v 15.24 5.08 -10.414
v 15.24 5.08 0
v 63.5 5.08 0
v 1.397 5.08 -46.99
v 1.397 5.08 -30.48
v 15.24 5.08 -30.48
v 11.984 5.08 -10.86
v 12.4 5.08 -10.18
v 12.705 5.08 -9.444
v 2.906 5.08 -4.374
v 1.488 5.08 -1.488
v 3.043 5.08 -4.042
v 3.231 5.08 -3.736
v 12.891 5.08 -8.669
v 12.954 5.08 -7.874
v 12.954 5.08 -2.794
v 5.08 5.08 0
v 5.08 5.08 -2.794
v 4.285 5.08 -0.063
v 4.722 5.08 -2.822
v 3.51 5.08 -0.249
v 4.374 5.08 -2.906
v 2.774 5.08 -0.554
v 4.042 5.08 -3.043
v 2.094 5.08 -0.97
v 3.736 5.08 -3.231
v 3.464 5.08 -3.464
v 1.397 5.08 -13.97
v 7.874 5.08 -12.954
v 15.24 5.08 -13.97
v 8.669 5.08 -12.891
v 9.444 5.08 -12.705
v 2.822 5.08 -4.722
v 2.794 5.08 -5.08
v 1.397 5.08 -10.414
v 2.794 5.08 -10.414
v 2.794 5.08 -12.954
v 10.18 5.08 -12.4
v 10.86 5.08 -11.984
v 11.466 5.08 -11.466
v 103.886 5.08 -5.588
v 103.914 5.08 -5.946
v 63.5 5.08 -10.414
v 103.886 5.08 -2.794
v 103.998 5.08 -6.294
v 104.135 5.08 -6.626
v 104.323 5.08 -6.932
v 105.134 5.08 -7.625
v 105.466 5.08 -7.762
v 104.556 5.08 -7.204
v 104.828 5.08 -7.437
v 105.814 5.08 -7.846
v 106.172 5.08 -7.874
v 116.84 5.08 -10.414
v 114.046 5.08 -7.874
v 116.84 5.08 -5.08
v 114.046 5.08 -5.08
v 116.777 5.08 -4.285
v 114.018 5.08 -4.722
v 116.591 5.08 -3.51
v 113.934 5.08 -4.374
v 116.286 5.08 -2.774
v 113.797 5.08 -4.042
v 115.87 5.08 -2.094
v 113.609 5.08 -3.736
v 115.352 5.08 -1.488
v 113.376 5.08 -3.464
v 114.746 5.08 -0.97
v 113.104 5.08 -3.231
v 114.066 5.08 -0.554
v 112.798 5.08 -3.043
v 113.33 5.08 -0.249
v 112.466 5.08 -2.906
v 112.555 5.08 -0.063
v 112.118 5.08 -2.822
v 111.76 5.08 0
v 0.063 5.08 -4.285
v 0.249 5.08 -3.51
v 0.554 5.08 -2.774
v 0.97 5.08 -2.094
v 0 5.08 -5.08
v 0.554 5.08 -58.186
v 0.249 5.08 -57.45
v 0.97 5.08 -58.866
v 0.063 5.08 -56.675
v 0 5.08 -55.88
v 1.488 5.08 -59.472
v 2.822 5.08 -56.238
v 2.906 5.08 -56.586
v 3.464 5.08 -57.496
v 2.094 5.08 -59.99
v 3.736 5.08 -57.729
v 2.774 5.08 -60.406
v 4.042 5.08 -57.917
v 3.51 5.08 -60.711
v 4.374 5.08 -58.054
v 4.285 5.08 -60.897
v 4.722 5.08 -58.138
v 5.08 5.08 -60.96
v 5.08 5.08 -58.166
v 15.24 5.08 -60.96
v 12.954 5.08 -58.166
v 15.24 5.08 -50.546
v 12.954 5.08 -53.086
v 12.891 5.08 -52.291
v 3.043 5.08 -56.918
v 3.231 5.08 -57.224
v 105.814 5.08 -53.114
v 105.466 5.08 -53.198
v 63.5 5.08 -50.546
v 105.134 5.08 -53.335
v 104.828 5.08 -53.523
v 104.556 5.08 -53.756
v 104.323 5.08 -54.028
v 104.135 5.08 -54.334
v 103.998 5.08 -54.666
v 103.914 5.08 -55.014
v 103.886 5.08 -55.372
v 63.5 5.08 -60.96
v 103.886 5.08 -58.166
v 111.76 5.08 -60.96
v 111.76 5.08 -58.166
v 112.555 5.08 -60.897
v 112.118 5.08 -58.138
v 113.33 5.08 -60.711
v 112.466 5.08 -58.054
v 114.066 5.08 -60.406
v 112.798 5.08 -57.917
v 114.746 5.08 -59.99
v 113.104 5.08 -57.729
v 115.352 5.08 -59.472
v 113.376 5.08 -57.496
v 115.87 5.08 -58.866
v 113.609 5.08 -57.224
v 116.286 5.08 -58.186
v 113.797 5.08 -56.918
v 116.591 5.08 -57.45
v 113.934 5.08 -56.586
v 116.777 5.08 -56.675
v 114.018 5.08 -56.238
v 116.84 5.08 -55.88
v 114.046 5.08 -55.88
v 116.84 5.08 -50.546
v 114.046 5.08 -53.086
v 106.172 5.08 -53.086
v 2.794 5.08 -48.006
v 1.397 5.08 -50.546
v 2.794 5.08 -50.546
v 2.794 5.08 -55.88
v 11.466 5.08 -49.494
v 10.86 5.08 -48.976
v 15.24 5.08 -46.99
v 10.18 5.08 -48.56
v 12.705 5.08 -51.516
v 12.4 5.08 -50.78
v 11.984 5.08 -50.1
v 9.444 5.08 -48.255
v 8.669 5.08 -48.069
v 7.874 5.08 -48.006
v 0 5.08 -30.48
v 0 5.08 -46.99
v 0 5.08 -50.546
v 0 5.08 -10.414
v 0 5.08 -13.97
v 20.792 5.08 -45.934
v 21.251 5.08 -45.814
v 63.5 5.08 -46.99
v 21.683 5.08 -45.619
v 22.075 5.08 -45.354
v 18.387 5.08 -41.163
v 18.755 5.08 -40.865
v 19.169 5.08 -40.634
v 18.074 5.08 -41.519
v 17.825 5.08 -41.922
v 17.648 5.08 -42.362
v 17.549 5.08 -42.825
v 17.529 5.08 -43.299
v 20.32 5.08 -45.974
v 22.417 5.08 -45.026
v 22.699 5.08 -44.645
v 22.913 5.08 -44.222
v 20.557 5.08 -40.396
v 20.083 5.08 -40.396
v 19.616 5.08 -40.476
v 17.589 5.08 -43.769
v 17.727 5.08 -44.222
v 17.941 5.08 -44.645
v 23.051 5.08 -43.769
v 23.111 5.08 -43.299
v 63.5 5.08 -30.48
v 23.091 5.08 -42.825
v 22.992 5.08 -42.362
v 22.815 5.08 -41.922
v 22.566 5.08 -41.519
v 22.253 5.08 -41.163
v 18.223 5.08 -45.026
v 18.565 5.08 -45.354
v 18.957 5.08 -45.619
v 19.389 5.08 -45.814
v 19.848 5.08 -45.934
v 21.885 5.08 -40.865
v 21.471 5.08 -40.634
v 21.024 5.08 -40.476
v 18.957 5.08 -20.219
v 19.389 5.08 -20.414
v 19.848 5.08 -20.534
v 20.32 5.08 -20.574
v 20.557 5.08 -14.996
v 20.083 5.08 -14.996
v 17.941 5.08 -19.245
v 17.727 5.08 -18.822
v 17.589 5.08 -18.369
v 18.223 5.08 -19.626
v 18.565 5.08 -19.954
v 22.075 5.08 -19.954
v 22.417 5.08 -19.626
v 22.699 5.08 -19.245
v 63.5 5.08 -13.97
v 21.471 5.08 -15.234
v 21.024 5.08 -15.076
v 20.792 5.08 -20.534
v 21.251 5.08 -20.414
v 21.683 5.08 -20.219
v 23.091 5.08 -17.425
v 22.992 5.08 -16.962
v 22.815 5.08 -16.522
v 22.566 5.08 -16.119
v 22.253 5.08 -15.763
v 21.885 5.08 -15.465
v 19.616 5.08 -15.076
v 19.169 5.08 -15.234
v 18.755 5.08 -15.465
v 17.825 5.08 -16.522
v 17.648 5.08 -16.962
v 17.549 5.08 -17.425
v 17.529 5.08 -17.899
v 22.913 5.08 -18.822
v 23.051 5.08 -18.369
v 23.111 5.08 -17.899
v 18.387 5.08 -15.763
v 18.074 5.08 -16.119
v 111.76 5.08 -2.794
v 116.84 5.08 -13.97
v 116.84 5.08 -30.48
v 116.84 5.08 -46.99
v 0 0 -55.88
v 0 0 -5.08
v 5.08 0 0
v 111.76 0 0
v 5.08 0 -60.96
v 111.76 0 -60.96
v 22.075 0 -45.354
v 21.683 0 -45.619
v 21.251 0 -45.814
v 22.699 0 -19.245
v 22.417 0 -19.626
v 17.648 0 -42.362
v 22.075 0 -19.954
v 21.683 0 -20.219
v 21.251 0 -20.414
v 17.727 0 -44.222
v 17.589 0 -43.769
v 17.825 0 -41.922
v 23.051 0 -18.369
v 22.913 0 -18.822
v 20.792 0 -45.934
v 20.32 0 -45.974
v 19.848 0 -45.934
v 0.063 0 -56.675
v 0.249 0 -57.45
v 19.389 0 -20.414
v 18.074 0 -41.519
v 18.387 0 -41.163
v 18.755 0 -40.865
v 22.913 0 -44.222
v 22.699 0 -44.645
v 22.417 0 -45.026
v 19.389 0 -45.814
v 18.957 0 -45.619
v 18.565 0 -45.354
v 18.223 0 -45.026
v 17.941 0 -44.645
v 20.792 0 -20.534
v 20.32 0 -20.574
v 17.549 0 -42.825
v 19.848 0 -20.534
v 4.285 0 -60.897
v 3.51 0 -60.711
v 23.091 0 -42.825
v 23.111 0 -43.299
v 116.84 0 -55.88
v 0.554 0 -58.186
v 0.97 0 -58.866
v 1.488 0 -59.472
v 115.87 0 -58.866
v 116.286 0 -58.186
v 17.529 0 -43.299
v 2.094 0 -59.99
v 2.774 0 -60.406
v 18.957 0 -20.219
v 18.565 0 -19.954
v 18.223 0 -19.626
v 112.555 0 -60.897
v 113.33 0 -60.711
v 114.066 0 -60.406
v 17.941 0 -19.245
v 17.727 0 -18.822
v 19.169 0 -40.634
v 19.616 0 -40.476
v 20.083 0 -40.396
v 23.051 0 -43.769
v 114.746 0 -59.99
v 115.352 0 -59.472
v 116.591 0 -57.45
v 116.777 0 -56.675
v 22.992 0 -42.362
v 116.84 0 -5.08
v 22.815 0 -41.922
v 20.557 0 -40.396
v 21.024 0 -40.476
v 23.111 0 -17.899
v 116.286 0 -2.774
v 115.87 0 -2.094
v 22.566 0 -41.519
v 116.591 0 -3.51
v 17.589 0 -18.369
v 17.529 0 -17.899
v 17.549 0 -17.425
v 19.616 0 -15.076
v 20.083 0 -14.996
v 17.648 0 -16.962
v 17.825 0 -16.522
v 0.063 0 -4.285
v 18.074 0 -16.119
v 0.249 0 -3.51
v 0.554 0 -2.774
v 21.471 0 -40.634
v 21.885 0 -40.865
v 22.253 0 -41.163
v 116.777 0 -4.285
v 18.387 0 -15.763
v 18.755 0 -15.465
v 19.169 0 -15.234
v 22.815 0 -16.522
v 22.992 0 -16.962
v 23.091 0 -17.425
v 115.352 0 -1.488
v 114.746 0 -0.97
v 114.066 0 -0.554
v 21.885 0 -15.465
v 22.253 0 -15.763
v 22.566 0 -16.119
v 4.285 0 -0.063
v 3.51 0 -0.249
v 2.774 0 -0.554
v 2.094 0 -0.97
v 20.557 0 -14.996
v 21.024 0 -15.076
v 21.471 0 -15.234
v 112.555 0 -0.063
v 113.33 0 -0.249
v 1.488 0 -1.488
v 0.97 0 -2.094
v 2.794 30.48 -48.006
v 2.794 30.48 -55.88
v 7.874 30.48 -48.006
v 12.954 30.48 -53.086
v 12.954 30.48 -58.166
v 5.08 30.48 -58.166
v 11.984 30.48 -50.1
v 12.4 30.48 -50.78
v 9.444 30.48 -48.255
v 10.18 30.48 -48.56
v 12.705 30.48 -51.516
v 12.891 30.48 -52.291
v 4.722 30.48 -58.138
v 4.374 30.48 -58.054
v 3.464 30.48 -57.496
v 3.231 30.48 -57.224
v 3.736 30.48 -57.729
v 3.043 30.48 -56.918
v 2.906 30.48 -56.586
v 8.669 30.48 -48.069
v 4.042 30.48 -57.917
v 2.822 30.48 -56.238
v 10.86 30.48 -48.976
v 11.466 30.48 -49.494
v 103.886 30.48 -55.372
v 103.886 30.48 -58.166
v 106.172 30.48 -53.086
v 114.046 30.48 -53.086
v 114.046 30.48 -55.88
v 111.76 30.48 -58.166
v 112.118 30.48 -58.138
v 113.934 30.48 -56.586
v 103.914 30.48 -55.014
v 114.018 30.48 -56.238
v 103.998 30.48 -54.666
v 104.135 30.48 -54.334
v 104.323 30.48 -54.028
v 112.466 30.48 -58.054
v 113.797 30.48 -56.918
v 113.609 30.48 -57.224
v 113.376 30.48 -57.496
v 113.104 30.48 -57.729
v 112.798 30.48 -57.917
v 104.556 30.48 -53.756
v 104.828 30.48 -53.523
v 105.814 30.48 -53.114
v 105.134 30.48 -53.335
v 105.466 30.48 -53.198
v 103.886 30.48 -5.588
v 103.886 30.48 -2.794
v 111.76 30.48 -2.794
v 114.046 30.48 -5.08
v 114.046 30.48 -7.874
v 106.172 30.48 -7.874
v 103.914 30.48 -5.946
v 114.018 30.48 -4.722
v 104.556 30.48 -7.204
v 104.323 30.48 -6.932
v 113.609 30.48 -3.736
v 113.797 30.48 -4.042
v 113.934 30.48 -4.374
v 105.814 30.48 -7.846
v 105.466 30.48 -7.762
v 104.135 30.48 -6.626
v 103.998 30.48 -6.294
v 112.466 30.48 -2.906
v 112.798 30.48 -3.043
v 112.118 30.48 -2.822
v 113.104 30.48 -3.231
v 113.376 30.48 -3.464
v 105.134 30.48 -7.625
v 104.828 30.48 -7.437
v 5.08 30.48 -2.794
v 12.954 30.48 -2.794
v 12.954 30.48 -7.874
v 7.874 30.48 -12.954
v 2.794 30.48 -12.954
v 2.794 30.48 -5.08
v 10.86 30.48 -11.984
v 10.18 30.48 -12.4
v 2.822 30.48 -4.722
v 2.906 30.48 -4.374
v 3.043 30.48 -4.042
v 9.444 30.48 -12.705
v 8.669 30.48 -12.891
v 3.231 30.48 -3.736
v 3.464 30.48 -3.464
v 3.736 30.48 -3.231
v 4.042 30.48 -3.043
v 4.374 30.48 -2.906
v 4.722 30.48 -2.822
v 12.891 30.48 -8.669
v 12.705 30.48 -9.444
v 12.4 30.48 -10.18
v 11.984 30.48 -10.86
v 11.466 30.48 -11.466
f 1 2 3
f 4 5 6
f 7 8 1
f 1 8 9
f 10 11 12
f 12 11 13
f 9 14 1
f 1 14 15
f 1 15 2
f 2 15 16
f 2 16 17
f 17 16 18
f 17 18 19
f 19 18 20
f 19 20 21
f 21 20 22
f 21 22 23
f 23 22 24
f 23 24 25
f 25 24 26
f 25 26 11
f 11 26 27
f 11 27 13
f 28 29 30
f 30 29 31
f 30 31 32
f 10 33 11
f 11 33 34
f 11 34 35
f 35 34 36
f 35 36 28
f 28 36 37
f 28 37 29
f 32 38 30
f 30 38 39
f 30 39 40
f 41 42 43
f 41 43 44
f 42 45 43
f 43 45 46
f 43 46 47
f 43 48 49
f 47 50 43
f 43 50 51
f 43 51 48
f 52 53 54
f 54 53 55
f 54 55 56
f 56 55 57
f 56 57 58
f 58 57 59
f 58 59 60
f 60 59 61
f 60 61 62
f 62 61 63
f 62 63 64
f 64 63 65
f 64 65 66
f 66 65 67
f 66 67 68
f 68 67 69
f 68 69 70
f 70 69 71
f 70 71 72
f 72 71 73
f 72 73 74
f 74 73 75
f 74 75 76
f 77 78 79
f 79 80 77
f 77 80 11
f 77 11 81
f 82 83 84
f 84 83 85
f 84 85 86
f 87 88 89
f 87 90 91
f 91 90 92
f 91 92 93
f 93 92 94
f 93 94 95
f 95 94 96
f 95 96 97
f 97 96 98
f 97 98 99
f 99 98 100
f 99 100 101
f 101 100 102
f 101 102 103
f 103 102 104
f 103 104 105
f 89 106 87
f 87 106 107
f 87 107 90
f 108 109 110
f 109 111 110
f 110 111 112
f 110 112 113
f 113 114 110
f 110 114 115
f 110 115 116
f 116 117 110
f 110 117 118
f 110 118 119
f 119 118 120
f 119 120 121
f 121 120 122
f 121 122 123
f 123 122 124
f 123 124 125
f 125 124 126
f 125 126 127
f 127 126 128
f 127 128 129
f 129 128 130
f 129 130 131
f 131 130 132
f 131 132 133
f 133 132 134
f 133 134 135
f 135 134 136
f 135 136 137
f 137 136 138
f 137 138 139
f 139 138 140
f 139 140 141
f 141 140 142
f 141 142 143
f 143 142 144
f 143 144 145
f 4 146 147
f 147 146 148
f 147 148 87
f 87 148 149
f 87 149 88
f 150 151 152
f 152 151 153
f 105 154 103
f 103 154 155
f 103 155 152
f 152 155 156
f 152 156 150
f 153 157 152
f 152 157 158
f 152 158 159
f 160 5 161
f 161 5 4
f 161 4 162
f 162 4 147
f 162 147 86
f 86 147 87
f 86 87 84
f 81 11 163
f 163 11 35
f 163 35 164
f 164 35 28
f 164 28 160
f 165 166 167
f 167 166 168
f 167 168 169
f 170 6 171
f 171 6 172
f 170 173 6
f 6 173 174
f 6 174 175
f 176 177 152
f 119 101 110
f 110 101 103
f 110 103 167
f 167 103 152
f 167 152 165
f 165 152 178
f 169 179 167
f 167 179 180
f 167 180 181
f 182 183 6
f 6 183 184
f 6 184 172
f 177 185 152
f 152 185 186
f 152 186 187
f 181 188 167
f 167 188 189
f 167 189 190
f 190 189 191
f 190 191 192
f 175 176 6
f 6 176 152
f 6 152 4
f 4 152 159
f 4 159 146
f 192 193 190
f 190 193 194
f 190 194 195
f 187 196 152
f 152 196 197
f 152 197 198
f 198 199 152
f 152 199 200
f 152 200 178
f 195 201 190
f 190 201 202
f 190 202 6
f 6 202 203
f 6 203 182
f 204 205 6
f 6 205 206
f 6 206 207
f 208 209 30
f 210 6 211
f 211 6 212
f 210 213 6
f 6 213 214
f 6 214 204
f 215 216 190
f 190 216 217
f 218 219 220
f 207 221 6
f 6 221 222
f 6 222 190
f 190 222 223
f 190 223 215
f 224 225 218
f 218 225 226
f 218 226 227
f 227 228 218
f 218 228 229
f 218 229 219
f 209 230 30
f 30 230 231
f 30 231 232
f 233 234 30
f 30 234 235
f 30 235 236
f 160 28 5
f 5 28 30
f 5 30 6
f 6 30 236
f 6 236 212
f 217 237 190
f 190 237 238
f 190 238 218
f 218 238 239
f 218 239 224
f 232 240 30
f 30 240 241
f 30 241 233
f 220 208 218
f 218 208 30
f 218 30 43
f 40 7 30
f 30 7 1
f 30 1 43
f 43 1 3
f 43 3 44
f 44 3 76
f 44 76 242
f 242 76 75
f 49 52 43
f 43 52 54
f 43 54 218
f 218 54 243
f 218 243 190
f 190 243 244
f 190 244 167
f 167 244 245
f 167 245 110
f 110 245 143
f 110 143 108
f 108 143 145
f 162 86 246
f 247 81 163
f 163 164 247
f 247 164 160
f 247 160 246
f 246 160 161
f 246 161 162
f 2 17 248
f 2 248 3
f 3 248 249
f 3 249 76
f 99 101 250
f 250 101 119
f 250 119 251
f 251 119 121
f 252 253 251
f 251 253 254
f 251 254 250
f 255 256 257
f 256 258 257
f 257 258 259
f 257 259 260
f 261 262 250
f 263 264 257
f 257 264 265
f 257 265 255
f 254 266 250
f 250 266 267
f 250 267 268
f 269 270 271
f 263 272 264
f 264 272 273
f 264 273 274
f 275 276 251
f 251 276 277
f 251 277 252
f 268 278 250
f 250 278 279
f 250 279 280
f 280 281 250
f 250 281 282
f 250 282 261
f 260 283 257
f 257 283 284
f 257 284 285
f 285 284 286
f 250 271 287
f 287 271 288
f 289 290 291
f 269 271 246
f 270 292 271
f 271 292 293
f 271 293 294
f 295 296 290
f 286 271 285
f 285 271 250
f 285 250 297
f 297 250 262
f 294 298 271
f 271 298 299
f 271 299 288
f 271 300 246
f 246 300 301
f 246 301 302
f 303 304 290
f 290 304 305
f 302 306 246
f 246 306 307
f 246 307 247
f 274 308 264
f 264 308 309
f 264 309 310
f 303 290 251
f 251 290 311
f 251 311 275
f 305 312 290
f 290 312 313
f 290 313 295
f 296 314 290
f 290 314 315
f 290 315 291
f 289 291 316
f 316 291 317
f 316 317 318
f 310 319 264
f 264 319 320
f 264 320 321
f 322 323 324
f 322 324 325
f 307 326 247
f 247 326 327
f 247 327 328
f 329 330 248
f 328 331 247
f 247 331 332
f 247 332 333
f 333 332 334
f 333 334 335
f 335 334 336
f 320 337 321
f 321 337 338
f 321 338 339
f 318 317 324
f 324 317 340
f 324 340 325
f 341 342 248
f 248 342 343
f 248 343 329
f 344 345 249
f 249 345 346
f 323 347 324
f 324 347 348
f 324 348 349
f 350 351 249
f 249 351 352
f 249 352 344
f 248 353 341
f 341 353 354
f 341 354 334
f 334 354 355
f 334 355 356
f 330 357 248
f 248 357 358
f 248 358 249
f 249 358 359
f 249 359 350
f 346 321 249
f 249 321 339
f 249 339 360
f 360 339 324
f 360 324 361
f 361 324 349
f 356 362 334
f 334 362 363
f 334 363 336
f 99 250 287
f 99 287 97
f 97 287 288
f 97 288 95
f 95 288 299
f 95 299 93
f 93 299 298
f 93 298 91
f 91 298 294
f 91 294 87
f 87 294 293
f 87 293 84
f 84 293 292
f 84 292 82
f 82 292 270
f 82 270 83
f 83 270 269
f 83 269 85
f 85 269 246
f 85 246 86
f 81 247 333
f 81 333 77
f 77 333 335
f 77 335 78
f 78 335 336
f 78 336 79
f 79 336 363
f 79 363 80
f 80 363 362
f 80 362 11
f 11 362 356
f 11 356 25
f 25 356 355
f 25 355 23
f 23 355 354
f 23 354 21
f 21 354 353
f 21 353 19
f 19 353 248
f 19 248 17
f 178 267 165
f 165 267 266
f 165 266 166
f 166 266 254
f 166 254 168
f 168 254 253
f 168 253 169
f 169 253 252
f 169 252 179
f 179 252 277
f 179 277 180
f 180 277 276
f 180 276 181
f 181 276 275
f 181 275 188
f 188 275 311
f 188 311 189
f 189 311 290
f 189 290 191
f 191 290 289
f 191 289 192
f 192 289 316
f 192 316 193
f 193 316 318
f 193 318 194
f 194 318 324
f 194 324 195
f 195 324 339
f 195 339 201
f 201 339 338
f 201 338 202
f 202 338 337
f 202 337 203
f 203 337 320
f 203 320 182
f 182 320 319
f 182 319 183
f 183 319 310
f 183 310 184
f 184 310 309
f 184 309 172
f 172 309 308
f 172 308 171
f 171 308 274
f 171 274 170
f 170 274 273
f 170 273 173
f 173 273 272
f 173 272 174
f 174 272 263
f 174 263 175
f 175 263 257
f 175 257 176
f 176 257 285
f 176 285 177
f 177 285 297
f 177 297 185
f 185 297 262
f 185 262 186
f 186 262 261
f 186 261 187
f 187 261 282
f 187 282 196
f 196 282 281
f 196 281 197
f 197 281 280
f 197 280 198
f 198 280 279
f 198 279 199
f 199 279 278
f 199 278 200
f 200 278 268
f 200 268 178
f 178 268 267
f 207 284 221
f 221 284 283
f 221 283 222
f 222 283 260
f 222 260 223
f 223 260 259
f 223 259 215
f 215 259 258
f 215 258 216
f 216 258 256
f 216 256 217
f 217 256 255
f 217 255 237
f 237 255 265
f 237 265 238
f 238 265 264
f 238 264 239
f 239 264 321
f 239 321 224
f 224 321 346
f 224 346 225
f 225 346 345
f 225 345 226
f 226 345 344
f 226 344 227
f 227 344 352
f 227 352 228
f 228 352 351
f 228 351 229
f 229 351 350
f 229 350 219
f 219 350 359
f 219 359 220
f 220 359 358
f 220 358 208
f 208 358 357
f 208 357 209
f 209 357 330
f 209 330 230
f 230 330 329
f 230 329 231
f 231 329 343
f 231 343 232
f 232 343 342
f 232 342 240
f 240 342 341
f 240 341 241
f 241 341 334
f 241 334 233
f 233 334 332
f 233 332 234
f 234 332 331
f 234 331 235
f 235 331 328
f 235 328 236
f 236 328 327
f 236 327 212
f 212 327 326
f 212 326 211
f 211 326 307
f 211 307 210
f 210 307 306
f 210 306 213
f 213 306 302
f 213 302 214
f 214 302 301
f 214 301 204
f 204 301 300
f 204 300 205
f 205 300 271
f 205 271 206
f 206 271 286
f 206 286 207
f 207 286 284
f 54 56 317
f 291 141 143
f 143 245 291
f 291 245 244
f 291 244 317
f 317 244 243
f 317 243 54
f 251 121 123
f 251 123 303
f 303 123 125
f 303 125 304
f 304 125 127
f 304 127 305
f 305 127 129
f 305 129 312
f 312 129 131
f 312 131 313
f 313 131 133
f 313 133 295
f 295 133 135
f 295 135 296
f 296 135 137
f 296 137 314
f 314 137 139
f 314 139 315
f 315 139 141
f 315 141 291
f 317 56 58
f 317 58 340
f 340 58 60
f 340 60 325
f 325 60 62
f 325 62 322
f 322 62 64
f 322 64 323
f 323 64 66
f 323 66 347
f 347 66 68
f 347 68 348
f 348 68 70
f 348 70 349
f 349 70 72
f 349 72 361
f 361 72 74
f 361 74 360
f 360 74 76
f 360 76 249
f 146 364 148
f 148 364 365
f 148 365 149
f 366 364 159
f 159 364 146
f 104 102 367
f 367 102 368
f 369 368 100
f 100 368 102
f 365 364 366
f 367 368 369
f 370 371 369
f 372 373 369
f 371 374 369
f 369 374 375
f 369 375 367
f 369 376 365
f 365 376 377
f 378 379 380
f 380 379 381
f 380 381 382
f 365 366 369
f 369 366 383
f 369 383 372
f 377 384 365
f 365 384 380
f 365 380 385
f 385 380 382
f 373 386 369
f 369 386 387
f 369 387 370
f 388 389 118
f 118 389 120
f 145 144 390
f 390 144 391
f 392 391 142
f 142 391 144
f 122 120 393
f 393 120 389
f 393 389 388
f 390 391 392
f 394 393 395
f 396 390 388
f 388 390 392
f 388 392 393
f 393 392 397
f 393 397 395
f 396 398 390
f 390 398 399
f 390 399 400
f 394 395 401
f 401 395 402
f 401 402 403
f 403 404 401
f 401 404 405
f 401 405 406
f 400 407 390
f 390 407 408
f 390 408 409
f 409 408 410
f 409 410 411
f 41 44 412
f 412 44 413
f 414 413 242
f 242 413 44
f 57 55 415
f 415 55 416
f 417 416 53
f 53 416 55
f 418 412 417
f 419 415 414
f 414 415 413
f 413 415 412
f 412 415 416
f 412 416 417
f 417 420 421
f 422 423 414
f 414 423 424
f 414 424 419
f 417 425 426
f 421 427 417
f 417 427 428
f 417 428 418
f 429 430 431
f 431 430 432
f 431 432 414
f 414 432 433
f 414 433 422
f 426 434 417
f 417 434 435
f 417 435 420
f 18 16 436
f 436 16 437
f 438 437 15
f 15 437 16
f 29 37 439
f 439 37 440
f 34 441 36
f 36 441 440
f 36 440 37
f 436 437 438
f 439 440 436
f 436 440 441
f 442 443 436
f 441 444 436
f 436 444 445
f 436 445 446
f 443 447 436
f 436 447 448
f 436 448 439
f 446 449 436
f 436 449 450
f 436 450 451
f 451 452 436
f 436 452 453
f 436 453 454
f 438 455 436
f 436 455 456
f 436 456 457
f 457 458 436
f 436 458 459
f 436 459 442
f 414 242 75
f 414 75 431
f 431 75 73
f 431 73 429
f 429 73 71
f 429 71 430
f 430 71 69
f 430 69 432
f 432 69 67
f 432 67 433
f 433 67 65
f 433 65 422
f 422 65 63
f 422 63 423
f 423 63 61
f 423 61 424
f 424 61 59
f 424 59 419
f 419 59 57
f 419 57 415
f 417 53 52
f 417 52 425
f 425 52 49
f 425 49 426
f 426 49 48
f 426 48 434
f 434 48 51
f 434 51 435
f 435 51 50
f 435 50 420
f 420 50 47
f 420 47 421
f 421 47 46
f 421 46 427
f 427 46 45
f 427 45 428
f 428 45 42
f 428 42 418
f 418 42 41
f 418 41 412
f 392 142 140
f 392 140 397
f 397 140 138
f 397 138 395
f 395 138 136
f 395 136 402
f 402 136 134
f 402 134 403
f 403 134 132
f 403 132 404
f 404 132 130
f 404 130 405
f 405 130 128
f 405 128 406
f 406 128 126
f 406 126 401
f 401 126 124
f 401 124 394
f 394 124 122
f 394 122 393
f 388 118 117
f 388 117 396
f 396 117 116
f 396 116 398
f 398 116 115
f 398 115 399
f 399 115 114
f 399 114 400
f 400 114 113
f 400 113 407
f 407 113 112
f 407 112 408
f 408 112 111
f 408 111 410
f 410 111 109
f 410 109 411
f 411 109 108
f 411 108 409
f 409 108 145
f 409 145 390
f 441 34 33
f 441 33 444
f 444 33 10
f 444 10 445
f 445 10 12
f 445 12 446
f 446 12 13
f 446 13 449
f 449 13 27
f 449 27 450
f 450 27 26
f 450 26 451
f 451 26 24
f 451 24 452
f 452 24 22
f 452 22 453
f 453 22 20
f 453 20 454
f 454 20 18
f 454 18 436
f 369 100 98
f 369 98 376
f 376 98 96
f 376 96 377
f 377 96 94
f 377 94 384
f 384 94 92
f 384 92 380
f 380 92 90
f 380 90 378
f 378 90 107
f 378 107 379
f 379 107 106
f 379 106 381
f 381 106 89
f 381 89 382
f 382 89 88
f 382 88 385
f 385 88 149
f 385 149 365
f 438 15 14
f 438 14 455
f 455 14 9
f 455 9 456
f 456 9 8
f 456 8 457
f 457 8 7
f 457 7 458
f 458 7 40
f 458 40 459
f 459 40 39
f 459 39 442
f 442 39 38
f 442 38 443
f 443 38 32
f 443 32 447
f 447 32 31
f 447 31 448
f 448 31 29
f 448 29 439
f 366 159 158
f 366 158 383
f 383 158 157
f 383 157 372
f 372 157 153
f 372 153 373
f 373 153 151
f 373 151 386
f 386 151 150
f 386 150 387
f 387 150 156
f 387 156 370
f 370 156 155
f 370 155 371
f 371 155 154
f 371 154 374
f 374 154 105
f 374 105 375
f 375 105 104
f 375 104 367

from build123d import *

# Parameters (mm, degrees)
SKETCH1_W           = 111.76
SKETCH1_H           = 60.96
BOSS_EXTRUDE1_DEPTH = 5.08
FILLET1_R           = 5.08
CUT_EXTRUDE1_REACH  = 129.406
SKETCH3_R           = 2.794
SKETCH3_R_2         = 3.302
SKETCH5_W           = 10.16
SKETCH5_H           = 60.96
BOSS_EXTRUDE2_DEPTH = 5.08
FILLET2_R           = 5.08
SKETCH2_W           = 10.16
SKETCH2_H           = 10.16
SKETCH2_H_2         = 5.08
BOSS_EXTRUDE5_DEPTH = 25.4
FILLET9_R           = 2.286
FILLET10_R          = 5.08
SKETCH6_R           = 6.996125679
BOSS_EXTRUDE6_DEPTH = 5.08


with BuildPart() as part:
    # Sketch1 → Boss-Extrude1 (new body)
    with BuildSketch(Plane(origin=(0, 0, 0), x_dir=(1, 0, 0), z_dir=(0, 1, 0))):
        with Locations((55.88, 30.48)):
            Rectangle(SKETCH1_W, SKETCH1_H)
    extrude(amount=BOSS_EXTRUDE1_DEPTH)

    # Fillet1
    fillet1_edges = [part.edges().sort_by_distance(p)[0] for p in [
        (0, 2.54, -60.96),
        (111.76, 2.54, -60.96),
        (111.76, 2.54, 0),
        (0, 2.54, 0),
    ]]
    fillet(fillet1_edges, radius=FILLET1_R)

    # Sketch3 → Cut-Extrude1 (cut, up to next)
    with BuildSketch(Plane.XZ, mode=Mode.PRIVATE) as cut_extrude1_sk1:
        with Locations(Location((20.32, -17.78, 0), (0, 0, 270))):
            Circle(SKETCH3_R)
    cut_extrude1_tool1 = extrude(cut_extrude1_sk1.sketch, amount=-CUT_EXTRUDE1_REACH, mode=Mode.PRIVATE) & part.part
    # Sketch3 → Cut-Extrude1 (cut, up to next)
    with BuildSketch(Plane.XZ, mode=Mode.PRIVATE) as cut_extrude1_sk2:
        with Locations(Location((20.32, -43.18, 0), (0, 0, 270))):
            Circle(SKETCH3_R)
    cut_extrude1_tool2 = extrude(cut_extrude1_sk2.sketch, amount=-CUT_EXTRUDE1_REACH, mode=Mode.PRIVATE) & part.part
    # Sketch3 → Cut-Extrude1 (cut, up to next)
    with BuildSketch(Plane.XZ, mode=Mode.PRIVATE) as cut_extrude1_sk3:
        with Locations(Location((30.48, -30.48, 0), (0, 0, 270))):
            Circle(SKETCH3_R_2)
    cut_extrude1_tool3 = extrude(cut_extrude1_sk3.sketch, amount=-CUT_EXTRUDE1_REACH, mode=Mode.PRIVATE) & part.part
    add(cut_extrude1_tool1.solids().sort_by_distance((20.32, 0, -17.78))[0], mode=Mode.SUBTRACT)
    add(cut_extrude1_tool2.solids().sort_by_distance((20.32, 0, -43.18))[0], mode=Mode.SUBTRACT)
    add(cut_extrude1_tool3.solids().sort_by_distance((30.48, 0, -30.48))[0], mode=Mode.SUBTRACT)

    # Sketch5 → Boss-Extrude2 (add)
    with BuildSketch(Plane.XZ):
        with Locations((111.76, -30.48)):
            Rectangle(SKETCH5_W, SKETCH5_H)
    extrude(amount=-BOSS_EXTRUDE2_DEPTH)

    # Fillet2
    fillet2_edges = [part.edges().sort_by_distance(p)[0] for p in [
        (116.84, 2.54, 0),
        (116.84, 2.54, -60.96),
    ]]
    fillet(fillet2_edges, radius=FILLET2_R)

    # Sketch2 → Boss-Extrude5 (add)
    with BuildSketch(Plane(origin=(0, 5.08, 0), x_dir=(1, 0, 0), z_dir=(0, 1, 0))):
        with Locations((7.874, 53.086)):
            Rectangle(SKETCH2_W, SKETCH2_H)
        with Locations((7.874, 7.874)):
            Rectangle(SKETCH2_W, SKETCH2_H)
        with Locations((108.966, 55.626)):
            Rectangle(SKETCH2_W, SKETCH2_H_2)
        with Locations((108.966, 5.334)):
            Rectangle(SKETCH2_W, SKETCH2_H_2)
    extrude(amount=BOSS_EXTRUDE5_DEPTH)

    # Fillet9
    fillet9_edges = [part.edges().sort_by_distance(p)[0] for p in [
        (103.886, 17.78, -7.874),
        (114.046, 17.78, -2.794),
        (2.794, 17.78, -2.794),
        (2.794, 17.78, -58.166),
        (103.886, 17.78, -53.086),
        (114.046, 17.78, -58.166),
    ]]
    fillet(fillet9_edges, radius=FILLET9_R)

    # Fillet10
    fillet10_edges = [part.edges().sort_by_distance(p)[0] for p in [
        (12.954, 17.78, -12.954),
        (12.954, 17.78, -48.006),
    ]]
    fillet(fillet10_edges, radius=FILLET10_R)

    # Sketch6 → Boss-Extrude6 (add)
    with BuildSketch(Plane(origin=(0, 5.08, 0), x_dir=(1, 0, 0), z_dir=(0, 1, 0))):
        with Locations((30.48, 30.48)):
            Circle(SKETCH6_R)
    extrude(amount=-BOSS_EXTRUDE6_DEPTH)


solid = part.part
